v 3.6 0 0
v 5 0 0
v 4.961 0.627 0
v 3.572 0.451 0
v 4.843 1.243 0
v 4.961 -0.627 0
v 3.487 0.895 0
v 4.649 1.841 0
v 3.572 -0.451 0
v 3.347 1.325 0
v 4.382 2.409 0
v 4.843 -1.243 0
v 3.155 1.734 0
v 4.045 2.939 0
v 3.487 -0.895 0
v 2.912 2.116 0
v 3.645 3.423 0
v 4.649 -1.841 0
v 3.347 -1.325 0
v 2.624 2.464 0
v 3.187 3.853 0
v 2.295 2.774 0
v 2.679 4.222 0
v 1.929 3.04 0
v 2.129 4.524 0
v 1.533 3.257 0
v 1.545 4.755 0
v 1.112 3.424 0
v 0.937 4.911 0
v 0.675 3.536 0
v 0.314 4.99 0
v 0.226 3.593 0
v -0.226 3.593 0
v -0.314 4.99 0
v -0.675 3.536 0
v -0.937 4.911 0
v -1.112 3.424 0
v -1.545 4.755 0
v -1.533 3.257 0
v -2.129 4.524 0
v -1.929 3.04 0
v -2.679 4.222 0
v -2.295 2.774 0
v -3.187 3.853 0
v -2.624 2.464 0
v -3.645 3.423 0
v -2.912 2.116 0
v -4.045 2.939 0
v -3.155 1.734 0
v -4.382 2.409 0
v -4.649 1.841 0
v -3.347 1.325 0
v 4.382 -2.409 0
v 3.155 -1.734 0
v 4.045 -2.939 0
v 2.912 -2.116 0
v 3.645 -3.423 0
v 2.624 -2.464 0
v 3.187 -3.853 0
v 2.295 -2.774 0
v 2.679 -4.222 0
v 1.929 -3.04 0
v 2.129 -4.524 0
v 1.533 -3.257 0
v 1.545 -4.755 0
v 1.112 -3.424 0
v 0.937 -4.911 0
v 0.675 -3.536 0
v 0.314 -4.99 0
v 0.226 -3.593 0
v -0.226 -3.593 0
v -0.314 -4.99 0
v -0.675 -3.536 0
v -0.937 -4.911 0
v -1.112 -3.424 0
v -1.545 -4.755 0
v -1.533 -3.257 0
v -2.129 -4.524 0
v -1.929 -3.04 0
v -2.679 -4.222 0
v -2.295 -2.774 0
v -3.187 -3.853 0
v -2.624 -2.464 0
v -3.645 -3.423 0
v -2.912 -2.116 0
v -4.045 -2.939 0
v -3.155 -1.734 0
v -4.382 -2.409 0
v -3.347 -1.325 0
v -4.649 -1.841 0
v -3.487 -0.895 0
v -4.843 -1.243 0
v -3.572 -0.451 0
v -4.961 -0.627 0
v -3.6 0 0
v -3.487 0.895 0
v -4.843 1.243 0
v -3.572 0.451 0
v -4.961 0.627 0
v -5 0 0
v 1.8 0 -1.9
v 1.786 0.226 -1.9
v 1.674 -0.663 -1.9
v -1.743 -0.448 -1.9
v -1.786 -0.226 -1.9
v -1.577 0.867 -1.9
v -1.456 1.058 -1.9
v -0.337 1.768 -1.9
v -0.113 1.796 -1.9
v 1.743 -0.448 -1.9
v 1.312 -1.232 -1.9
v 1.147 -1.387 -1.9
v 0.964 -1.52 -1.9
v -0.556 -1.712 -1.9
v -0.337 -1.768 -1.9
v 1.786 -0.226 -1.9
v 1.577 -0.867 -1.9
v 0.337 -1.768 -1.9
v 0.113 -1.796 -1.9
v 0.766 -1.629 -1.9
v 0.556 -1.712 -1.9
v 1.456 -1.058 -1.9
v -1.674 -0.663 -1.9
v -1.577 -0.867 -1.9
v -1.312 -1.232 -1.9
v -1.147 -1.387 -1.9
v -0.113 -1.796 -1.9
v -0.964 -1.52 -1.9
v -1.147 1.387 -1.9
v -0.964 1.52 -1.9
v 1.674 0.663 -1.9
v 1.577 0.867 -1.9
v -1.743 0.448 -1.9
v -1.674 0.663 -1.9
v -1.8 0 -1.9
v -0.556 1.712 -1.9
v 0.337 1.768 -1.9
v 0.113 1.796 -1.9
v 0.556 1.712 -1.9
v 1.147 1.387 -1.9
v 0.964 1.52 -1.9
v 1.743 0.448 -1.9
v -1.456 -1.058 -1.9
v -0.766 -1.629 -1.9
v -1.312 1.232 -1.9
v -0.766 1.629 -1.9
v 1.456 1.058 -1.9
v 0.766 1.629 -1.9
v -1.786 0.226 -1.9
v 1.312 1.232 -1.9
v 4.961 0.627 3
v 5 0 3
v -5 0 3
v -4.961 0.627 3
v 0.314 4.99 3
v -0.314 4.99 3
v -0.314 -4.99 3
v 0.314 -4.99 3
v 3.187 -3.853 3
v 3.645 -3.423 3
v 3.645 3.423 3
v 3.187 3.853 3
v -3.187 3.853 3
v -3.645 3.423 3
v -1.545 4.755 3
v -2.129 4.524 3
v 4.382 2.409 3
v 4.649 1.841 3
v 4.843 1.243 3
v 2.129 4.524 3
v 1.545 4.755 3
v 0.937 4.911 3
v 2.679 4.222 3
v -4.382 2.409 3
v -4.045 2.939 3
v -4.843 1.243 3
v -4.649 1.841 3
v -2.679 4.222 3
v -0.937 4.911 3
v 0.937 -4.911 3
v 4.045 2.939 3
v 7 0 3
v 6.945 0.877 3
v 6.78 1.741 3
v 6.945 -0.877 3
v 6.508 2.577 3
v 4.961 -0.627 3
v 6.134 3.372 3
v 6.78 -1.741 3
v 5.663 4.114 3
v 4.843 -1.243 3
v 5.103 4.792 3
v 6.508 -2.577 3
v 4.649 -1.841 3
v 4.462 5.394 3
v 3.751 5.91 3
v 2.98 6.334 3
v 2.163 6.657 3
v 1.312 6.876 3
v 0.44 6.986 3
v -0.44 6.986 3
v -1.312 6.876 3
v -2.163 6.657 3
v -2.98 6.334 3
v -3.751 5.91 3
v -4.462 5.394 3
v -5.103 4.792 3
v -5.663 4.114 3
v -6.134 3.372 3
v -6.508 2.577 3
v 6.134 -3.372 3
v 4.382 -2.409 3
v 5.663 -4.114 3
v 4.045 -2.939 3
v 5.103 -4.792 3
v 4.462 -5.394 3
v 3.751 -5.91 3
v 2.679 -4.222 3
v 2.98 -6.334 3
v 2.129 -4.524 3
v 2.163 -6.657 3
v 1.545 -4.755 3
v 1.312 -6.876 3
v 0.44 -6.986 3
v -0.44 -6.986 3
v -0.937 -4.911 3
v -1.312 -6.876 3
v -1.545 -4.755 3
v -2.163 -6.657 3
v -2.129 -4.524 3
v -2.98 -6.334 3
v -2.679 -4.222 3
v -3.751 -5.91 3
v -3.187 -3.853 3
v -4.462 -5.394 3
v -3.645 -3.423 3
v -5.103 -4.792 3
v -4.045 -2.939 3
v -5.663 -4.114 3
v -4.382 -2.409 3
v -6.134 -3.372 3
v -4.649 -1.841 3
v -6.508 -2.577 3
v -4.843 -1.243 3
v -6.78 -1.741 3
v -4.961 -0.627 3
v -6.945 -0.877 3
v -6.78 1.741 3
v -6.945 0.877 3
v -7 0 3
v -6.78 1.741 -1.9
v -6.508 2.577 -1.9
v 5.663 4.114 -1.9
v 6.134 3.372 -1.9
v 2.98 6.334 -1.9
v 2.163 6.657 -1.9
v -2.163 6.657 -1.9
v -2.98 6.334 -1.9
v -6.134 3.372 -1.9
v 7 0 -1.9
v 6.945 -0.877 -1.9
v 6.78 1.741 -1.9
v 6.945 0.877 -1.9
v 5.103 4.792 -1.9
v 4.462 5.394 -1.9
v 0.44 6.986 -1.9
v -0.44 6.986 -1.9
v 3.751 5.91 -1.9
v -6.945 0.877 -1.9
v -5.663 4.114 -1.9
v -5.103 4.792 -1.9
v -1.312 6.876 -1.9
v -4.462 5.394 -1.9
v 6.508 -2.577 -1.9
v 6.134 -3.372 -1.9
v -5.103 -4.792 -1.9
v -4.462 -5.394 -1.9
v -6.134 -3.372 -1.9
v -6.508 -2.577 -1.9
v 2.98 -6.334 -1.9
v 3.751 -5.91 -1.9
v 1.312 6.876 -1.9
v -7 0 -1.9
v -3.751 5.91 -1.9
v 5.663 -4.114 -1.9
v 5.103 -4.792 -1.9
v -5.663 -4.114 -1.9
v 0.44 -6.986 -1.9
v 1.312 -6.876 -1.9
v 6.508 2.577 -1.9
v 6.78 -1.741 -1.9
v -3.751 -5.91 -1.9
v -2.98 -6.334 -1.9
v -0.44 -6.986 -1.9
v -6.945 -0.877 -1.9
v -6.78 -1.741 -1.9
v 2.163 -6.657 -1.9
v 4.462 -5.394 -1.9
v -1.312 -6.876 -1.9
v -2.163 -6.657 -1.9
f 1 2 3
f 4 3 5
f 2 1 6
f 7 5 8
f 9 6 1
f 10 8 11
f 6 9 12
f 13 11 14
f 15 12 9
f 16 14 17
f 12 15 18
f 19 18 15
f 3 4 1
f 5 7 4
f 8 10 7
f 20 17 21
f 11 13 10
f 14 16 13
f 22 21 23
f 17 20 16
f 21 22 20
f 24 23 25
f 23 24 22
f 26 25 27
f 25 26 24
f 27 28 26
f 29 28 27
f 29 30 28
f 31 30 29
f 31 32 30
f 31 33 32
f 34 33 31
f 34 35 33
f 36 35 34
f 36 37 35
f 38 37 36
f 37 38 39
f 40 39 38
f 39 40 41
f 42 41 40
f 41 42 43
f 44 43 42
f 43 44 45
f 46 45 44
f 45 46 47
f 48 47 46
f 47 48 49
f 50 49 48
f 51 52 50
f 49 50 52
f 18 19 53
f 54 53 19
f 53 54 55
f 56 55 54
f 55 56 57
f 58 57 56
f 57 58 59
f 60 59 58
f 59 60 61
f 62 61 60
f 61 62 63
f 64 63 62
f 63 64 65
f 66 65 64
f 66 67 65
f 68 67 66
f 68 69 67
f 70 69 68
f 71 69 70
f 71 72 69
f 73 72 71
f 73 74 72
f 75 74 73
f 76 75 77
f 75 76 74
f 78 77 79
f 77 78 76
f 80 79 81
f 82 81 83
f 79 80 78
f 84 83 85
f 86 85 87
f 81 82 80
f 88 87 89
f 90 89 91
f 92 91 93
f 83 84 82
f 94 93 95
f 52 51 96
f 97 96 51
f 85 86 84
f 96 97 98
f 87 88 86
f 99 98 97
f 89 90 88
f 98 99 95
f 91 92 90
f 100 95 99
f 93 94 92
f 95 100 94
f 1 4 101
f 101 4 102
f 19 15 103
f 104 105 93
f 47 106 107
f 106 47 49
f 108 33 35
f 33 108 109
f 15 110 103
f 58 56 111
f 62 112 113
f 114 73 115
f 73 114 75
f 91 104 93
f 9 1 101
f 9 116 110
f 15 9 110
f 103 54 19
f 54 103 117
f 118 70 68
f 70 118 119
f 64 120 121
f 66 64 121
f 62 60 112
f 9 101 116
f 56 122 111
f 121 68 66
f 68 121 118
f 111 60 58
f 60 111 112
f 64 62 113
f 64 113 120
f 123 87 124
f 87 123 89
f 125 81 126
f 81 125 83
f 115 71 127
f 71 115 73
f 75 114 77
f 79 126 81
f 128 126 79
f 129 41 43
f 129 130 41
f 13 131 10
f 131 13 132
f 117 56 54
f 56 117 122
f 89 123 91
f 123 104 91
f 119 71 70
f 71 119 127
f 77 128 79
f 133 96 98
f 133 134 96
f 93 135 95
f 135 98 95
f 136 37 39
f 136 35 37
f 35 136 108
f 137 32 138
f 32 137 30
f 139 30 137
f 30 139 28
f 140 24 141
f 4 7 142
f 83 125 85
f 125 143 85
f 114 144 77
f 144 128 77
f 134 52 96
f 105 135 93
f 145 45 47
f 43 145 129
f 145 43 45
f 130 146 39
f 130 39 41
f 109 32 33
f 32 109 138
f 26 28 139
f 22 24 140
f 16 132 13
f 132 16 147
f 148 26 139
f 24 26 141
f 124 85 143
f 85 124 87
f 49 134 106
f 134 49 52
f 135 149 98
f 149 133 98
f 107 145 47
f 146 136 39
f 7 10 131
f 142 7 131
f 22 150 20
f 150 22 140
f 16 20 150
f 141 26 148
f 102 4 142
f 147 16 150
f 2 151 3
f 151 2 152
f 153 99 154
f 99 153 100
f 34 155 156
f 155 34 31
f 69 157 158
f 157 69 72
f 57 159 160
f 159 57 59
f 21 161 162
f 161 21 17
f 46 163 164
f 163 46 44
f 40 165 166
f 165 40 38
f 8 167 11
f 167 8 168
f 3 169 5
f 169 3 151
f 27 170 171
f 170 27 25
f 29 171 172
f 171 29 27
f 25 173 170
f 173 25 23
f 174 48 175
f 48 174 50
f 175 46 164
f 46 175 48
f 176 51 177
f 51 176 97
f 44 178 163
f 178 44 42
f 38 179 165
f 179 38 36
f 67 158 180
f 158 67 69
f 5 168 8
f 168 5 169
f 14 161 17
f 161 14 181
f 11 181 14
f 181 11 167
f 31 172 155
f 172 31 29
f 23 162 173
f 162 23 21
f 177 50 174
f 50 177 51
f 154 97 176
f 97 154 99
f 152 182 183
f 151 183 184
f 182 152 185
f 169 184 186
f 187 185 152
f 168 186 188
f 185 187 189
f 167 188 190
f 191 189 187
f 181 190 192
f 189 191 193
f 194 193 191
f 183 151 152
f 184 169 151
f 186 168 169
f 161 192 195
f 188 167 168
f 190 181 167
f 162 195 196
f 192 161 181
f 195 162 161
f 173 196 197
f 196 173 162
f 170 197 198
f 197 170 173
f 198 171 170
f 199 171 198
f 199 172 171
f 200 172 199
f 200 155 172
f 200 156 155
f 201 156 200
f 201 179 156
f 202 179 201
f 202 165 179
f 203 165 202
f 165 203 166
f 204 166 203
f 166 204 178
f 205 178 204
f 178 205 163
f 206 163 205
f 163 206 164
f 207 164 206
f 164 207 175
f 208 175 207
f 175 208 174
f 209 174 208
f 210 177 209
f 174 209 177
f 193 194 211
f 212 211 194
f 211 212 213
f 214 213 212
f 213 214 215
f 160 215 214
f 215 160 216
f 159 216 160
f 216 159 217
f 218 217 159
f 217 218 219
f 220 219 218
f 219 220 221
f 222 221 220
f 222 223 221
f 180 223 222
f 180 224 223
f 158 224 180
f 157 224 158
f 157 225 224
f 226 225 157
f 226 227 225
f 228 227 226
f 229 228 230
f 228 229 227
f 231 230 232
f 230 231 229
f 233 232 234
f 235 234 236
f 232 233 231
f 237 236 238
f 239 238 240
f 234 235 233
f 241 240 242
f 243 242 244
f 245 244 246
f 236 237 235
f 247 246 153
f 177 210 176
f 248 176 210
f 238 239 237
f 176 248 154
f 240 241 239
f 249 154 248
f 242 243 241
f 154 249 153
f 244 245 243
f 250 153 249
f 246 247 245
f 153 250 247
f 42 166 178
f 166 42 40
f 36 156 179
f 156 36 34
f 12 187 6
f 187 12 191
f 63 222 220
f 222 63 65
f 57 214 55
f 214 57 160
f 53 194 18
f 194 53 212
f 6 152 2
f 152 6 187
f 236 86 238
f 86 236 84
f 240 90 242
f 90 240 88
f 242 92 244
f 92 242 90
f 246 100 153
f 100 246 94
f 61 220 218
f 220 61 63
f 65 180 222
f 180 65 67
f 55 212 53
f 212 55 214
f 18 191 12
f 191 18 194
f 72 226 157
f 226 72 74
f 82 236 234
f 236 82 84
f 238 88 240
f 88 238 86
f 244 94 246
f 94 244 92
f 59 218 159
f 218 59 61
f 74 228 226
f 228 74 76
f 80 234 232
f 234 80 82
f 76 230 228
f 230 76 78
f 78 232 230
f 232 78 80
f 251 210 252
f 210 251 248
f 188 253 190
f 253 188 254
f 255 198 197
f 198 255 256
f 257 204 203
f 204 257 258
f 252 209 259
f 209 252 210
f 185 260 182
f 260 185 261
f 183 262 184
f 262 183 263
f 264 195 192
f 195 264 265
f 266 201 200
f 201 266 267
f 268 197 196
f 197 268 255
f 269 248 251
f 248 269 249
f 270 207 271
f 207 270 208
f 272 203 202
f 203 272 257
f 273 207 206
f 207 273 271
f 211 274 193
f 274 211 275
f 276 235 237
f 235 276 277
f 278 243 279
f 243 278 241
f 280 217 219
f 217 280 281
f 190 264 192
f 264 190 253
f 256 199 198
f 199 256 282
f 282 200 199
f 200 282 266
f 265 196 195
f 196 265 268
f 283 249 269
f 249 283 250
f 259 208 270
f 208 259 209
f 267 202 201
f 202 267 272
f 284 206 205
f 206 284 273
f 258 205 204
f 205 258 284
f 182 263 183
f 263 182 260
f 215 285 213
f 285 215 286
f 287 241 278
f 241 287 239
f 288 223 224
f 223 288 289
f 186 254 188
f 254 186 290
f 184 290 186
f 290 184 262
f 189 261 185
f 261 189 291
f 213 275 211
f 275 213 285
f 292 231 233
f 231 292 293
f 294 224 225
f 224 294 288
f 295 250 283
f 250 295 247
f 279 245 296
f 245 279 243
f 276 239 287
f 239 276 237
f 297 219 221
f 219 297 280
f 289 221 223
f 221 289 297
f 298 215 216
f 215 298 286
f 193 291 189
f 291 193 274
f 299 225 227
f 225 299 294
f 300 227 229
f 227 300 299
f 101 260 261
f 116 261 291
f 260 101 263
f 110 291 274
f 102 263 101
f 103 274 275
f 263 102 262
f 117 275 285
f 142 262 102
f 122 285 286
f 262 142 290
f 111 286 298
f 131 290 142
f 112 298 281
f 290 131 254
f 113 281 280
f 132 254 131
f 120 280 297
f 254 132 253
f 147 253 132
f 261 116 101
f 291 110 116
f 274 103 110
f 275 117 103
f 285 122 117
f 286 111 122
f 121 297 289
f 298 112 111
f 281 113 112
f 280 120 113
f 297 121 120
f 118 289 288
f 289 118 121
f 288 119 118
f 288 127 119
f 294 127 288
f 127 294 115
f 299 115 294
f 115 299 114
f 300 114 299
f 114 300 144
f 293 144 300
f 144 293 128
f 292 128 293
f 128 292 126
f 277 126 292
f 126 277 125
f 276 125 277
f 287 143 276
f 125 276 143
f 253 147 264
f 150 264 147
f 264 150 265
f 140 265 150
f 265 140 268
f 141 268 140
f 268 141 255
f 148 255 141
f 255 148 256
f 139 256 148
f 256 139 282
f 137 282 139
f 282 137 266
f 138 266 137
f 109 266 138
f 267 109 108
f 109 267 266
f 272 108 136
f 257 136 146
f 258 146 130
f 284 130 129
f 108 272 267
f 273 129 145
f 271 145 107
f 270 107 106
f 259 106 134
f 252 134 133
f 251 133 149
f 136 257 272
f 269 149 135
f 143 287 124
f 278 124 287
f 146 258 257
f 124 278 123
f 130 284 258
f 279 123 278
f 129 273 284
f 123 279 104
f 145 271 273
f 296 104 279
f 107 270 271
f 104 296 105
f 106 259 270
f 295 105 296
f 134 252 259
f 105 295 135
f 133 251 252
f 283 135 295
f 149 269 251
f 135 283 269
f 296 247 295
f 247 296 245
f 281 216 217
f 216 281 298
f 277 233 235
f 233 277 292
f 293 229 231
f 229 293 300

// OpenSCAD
$fn = 50;

difference() {
	union() {
		translate(v = [0, 0, -1.9000000000000004]) {
			cylinder(h = 4.9, r = 7.0);
		}
	}
	union() {
		translate(v = [0, 0, 0]) {
			rotate(a = [0, 0, 0]) {
				difference() {
					union() {
						translate(v = [0, 0, -4.9]) {
							cylinder(h = 4.9, r = 1.5);
						}
						translate(v = [0, 0, -1.9]) {
							cylinder(h = 1.9, r1 = 1.8, r2 = 3.6);
						}
						translate(v = [0, 0, -4.9]) {
							cylinder(h = 4.9, r = 1.8);
						}
						translate(v = [0, 0, -4.9]) {
							cylinder(h = 4.9, r = 1.5);
						}
					}
					union();
				}
			}
		}
		#cylinder(h = 3, r = 5.0);
	}
}
